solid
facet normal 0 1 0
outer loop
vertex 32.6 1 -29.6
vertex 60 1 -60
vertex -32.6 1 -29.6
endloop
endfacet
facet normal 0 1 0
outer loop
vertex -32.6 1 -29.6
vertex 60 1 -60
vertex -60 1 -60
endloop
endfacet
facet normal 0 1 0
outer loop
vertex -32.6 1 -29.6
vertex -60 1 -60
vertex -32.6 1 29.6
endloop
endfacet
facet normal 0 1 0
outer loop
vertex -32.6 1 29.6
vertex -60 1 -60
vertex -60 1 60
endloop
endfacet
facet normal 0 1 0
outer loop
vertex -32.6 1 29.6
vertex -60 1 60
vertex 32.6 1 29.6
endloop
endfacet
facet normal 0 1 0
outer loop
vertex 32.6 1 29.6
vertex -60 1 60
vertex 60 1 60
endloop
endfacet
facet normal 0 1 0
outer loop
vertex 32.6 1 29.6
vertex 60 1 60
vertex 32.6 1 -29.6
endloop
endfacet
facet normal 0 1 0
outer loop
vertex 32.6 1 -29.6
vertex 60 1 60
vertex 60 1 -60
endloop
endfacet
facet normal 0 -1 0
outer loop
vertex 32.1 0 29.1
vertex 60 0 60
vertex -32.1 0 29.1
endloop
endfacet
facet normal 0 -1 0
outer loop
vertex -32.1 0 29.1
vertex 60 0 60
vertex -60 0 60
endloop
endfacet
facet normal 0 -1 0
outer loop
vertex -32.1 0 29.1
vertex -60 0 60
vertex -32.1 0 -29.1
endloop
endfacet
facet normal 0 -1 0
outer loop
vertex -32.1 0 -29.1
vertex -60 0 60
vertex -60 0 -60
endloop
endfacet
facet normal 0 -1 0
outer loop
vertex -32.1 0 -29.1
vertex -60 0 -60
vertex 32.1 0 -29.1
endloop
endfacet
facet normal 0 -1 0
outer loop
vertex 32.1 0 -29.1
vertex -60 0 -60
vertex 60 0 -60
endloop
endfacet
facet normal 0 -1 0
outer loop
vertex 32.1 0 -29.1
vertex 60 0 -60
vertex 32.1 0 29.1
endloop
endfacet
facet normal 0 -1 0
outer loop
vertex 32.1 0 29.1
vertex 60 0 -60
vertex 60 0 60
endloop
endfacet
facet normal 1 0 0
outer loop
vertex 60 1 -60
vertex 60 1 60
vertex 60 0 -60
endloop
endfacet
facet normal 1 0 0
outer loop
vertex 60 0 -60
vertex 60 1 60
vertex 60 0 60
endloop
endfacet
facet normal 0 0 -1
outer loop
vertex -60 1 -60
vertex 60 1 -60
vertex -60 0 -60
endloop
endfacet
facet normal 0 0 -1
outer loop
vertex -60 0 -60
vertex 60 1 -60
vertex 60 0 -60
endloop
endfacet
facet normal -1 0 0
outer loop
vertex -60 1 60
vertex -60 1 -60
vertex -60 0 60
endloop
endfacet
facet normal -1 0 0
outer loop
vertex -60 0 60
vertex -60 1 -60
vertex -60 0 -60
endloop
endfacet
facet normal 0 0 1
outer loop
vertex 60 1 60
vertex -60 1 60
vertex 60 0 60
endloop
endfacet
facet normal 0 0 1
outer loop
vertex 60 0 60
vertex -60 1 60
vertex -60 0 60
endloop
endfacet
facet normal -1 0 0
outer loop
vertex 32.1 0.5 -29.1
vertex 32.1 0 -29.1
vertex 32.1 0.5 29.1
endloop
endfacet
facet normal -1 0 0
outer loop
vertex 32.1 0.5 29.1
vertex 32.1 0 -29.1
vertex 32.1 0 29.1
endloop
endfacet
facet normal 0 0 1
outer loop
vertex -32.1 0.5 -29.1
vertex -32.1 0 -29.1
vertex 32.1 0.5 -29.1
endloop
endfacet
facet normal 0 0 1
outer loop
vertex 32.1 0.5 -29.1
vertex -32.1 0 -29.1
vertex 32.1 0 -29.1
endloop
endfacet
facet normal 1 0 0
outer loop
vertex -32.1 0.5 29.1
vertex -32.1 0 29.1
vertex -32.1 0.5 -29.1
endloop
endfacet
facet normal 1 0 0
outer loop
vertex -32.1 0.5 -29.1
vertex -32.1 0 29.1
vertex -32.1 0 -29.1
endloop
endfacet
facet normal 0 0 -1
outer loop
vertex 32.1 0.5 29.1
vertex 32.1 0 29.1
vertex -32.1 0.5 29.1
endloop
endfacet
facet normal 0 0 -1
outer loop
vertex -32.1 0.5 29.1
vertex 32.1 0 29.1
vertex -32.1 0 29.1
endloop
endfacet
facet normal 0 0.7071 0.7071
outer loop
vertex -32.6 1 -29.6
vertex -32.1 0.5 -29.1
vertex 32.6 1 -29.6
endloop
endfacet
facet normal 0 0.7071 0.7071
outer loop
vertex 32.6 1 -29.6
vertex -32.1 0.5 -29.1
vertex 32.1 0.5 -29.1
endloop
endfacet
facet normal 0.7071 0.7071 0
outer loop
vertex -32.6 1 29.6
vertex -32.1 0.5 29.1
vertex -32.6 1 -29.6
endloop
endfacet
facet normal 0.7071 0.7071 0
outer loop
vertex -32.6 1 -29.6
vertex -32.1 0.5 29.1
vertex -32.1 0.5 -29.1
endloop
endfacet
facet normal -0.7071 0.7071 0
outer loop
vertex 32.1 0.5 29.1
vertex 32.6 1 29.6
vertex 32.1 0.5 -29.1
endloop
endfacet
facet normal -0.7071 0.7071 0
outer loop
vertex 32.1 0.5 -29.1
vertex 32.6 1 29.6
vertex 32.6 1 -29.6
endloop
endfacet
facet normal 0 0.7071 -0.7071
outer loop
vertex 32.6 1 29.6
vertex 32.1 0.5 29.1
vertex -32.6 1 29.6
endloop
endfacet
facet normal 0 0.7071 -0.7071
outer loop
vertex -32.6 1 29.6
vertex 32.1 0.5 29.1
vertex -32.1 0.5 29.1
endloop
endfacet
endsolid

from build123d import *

# Parameters (mm, degrees)
SKETCH1_W           = 120
SKETCH1_H           = 120
SKETCH1_W_2         = 64.2
SKETCH1_H_2         = 58.2
BOSS_EXTRUDE1_DEPTH = 1
CHAMFER1_SIZE       = 0.5


with BuildPart() as part:
    # Sketch1 → Boss-Extrude1 (new body)
    with BuildSketch(Plane(origin=(0, 0, 0), x_dir=(1, 0, 0), z_dir=(0, 1, 0))):
        Rectangle(SKETCH1_W, SKETCH1_H)
        Rectangle(SKETCH1_W_2, SKETCH1_H_2, mode=Mode.SUBTRACT)
    extrude(amount=BOSS_EXTRUDE1_DEPTH)

    # Chamfer1
    chamfer1_edges = [part.edges().sort_by_distance(p)[0] for p in [
        (32.1, 1, 0),
        (0, 1, -29.1),
        (-32.1, 1, 0),
        (0, 1, 29.1),
    ]]
    chamfer(chamfer1_edges, length=CHAMFER1_SIZE)


solid = part.part
